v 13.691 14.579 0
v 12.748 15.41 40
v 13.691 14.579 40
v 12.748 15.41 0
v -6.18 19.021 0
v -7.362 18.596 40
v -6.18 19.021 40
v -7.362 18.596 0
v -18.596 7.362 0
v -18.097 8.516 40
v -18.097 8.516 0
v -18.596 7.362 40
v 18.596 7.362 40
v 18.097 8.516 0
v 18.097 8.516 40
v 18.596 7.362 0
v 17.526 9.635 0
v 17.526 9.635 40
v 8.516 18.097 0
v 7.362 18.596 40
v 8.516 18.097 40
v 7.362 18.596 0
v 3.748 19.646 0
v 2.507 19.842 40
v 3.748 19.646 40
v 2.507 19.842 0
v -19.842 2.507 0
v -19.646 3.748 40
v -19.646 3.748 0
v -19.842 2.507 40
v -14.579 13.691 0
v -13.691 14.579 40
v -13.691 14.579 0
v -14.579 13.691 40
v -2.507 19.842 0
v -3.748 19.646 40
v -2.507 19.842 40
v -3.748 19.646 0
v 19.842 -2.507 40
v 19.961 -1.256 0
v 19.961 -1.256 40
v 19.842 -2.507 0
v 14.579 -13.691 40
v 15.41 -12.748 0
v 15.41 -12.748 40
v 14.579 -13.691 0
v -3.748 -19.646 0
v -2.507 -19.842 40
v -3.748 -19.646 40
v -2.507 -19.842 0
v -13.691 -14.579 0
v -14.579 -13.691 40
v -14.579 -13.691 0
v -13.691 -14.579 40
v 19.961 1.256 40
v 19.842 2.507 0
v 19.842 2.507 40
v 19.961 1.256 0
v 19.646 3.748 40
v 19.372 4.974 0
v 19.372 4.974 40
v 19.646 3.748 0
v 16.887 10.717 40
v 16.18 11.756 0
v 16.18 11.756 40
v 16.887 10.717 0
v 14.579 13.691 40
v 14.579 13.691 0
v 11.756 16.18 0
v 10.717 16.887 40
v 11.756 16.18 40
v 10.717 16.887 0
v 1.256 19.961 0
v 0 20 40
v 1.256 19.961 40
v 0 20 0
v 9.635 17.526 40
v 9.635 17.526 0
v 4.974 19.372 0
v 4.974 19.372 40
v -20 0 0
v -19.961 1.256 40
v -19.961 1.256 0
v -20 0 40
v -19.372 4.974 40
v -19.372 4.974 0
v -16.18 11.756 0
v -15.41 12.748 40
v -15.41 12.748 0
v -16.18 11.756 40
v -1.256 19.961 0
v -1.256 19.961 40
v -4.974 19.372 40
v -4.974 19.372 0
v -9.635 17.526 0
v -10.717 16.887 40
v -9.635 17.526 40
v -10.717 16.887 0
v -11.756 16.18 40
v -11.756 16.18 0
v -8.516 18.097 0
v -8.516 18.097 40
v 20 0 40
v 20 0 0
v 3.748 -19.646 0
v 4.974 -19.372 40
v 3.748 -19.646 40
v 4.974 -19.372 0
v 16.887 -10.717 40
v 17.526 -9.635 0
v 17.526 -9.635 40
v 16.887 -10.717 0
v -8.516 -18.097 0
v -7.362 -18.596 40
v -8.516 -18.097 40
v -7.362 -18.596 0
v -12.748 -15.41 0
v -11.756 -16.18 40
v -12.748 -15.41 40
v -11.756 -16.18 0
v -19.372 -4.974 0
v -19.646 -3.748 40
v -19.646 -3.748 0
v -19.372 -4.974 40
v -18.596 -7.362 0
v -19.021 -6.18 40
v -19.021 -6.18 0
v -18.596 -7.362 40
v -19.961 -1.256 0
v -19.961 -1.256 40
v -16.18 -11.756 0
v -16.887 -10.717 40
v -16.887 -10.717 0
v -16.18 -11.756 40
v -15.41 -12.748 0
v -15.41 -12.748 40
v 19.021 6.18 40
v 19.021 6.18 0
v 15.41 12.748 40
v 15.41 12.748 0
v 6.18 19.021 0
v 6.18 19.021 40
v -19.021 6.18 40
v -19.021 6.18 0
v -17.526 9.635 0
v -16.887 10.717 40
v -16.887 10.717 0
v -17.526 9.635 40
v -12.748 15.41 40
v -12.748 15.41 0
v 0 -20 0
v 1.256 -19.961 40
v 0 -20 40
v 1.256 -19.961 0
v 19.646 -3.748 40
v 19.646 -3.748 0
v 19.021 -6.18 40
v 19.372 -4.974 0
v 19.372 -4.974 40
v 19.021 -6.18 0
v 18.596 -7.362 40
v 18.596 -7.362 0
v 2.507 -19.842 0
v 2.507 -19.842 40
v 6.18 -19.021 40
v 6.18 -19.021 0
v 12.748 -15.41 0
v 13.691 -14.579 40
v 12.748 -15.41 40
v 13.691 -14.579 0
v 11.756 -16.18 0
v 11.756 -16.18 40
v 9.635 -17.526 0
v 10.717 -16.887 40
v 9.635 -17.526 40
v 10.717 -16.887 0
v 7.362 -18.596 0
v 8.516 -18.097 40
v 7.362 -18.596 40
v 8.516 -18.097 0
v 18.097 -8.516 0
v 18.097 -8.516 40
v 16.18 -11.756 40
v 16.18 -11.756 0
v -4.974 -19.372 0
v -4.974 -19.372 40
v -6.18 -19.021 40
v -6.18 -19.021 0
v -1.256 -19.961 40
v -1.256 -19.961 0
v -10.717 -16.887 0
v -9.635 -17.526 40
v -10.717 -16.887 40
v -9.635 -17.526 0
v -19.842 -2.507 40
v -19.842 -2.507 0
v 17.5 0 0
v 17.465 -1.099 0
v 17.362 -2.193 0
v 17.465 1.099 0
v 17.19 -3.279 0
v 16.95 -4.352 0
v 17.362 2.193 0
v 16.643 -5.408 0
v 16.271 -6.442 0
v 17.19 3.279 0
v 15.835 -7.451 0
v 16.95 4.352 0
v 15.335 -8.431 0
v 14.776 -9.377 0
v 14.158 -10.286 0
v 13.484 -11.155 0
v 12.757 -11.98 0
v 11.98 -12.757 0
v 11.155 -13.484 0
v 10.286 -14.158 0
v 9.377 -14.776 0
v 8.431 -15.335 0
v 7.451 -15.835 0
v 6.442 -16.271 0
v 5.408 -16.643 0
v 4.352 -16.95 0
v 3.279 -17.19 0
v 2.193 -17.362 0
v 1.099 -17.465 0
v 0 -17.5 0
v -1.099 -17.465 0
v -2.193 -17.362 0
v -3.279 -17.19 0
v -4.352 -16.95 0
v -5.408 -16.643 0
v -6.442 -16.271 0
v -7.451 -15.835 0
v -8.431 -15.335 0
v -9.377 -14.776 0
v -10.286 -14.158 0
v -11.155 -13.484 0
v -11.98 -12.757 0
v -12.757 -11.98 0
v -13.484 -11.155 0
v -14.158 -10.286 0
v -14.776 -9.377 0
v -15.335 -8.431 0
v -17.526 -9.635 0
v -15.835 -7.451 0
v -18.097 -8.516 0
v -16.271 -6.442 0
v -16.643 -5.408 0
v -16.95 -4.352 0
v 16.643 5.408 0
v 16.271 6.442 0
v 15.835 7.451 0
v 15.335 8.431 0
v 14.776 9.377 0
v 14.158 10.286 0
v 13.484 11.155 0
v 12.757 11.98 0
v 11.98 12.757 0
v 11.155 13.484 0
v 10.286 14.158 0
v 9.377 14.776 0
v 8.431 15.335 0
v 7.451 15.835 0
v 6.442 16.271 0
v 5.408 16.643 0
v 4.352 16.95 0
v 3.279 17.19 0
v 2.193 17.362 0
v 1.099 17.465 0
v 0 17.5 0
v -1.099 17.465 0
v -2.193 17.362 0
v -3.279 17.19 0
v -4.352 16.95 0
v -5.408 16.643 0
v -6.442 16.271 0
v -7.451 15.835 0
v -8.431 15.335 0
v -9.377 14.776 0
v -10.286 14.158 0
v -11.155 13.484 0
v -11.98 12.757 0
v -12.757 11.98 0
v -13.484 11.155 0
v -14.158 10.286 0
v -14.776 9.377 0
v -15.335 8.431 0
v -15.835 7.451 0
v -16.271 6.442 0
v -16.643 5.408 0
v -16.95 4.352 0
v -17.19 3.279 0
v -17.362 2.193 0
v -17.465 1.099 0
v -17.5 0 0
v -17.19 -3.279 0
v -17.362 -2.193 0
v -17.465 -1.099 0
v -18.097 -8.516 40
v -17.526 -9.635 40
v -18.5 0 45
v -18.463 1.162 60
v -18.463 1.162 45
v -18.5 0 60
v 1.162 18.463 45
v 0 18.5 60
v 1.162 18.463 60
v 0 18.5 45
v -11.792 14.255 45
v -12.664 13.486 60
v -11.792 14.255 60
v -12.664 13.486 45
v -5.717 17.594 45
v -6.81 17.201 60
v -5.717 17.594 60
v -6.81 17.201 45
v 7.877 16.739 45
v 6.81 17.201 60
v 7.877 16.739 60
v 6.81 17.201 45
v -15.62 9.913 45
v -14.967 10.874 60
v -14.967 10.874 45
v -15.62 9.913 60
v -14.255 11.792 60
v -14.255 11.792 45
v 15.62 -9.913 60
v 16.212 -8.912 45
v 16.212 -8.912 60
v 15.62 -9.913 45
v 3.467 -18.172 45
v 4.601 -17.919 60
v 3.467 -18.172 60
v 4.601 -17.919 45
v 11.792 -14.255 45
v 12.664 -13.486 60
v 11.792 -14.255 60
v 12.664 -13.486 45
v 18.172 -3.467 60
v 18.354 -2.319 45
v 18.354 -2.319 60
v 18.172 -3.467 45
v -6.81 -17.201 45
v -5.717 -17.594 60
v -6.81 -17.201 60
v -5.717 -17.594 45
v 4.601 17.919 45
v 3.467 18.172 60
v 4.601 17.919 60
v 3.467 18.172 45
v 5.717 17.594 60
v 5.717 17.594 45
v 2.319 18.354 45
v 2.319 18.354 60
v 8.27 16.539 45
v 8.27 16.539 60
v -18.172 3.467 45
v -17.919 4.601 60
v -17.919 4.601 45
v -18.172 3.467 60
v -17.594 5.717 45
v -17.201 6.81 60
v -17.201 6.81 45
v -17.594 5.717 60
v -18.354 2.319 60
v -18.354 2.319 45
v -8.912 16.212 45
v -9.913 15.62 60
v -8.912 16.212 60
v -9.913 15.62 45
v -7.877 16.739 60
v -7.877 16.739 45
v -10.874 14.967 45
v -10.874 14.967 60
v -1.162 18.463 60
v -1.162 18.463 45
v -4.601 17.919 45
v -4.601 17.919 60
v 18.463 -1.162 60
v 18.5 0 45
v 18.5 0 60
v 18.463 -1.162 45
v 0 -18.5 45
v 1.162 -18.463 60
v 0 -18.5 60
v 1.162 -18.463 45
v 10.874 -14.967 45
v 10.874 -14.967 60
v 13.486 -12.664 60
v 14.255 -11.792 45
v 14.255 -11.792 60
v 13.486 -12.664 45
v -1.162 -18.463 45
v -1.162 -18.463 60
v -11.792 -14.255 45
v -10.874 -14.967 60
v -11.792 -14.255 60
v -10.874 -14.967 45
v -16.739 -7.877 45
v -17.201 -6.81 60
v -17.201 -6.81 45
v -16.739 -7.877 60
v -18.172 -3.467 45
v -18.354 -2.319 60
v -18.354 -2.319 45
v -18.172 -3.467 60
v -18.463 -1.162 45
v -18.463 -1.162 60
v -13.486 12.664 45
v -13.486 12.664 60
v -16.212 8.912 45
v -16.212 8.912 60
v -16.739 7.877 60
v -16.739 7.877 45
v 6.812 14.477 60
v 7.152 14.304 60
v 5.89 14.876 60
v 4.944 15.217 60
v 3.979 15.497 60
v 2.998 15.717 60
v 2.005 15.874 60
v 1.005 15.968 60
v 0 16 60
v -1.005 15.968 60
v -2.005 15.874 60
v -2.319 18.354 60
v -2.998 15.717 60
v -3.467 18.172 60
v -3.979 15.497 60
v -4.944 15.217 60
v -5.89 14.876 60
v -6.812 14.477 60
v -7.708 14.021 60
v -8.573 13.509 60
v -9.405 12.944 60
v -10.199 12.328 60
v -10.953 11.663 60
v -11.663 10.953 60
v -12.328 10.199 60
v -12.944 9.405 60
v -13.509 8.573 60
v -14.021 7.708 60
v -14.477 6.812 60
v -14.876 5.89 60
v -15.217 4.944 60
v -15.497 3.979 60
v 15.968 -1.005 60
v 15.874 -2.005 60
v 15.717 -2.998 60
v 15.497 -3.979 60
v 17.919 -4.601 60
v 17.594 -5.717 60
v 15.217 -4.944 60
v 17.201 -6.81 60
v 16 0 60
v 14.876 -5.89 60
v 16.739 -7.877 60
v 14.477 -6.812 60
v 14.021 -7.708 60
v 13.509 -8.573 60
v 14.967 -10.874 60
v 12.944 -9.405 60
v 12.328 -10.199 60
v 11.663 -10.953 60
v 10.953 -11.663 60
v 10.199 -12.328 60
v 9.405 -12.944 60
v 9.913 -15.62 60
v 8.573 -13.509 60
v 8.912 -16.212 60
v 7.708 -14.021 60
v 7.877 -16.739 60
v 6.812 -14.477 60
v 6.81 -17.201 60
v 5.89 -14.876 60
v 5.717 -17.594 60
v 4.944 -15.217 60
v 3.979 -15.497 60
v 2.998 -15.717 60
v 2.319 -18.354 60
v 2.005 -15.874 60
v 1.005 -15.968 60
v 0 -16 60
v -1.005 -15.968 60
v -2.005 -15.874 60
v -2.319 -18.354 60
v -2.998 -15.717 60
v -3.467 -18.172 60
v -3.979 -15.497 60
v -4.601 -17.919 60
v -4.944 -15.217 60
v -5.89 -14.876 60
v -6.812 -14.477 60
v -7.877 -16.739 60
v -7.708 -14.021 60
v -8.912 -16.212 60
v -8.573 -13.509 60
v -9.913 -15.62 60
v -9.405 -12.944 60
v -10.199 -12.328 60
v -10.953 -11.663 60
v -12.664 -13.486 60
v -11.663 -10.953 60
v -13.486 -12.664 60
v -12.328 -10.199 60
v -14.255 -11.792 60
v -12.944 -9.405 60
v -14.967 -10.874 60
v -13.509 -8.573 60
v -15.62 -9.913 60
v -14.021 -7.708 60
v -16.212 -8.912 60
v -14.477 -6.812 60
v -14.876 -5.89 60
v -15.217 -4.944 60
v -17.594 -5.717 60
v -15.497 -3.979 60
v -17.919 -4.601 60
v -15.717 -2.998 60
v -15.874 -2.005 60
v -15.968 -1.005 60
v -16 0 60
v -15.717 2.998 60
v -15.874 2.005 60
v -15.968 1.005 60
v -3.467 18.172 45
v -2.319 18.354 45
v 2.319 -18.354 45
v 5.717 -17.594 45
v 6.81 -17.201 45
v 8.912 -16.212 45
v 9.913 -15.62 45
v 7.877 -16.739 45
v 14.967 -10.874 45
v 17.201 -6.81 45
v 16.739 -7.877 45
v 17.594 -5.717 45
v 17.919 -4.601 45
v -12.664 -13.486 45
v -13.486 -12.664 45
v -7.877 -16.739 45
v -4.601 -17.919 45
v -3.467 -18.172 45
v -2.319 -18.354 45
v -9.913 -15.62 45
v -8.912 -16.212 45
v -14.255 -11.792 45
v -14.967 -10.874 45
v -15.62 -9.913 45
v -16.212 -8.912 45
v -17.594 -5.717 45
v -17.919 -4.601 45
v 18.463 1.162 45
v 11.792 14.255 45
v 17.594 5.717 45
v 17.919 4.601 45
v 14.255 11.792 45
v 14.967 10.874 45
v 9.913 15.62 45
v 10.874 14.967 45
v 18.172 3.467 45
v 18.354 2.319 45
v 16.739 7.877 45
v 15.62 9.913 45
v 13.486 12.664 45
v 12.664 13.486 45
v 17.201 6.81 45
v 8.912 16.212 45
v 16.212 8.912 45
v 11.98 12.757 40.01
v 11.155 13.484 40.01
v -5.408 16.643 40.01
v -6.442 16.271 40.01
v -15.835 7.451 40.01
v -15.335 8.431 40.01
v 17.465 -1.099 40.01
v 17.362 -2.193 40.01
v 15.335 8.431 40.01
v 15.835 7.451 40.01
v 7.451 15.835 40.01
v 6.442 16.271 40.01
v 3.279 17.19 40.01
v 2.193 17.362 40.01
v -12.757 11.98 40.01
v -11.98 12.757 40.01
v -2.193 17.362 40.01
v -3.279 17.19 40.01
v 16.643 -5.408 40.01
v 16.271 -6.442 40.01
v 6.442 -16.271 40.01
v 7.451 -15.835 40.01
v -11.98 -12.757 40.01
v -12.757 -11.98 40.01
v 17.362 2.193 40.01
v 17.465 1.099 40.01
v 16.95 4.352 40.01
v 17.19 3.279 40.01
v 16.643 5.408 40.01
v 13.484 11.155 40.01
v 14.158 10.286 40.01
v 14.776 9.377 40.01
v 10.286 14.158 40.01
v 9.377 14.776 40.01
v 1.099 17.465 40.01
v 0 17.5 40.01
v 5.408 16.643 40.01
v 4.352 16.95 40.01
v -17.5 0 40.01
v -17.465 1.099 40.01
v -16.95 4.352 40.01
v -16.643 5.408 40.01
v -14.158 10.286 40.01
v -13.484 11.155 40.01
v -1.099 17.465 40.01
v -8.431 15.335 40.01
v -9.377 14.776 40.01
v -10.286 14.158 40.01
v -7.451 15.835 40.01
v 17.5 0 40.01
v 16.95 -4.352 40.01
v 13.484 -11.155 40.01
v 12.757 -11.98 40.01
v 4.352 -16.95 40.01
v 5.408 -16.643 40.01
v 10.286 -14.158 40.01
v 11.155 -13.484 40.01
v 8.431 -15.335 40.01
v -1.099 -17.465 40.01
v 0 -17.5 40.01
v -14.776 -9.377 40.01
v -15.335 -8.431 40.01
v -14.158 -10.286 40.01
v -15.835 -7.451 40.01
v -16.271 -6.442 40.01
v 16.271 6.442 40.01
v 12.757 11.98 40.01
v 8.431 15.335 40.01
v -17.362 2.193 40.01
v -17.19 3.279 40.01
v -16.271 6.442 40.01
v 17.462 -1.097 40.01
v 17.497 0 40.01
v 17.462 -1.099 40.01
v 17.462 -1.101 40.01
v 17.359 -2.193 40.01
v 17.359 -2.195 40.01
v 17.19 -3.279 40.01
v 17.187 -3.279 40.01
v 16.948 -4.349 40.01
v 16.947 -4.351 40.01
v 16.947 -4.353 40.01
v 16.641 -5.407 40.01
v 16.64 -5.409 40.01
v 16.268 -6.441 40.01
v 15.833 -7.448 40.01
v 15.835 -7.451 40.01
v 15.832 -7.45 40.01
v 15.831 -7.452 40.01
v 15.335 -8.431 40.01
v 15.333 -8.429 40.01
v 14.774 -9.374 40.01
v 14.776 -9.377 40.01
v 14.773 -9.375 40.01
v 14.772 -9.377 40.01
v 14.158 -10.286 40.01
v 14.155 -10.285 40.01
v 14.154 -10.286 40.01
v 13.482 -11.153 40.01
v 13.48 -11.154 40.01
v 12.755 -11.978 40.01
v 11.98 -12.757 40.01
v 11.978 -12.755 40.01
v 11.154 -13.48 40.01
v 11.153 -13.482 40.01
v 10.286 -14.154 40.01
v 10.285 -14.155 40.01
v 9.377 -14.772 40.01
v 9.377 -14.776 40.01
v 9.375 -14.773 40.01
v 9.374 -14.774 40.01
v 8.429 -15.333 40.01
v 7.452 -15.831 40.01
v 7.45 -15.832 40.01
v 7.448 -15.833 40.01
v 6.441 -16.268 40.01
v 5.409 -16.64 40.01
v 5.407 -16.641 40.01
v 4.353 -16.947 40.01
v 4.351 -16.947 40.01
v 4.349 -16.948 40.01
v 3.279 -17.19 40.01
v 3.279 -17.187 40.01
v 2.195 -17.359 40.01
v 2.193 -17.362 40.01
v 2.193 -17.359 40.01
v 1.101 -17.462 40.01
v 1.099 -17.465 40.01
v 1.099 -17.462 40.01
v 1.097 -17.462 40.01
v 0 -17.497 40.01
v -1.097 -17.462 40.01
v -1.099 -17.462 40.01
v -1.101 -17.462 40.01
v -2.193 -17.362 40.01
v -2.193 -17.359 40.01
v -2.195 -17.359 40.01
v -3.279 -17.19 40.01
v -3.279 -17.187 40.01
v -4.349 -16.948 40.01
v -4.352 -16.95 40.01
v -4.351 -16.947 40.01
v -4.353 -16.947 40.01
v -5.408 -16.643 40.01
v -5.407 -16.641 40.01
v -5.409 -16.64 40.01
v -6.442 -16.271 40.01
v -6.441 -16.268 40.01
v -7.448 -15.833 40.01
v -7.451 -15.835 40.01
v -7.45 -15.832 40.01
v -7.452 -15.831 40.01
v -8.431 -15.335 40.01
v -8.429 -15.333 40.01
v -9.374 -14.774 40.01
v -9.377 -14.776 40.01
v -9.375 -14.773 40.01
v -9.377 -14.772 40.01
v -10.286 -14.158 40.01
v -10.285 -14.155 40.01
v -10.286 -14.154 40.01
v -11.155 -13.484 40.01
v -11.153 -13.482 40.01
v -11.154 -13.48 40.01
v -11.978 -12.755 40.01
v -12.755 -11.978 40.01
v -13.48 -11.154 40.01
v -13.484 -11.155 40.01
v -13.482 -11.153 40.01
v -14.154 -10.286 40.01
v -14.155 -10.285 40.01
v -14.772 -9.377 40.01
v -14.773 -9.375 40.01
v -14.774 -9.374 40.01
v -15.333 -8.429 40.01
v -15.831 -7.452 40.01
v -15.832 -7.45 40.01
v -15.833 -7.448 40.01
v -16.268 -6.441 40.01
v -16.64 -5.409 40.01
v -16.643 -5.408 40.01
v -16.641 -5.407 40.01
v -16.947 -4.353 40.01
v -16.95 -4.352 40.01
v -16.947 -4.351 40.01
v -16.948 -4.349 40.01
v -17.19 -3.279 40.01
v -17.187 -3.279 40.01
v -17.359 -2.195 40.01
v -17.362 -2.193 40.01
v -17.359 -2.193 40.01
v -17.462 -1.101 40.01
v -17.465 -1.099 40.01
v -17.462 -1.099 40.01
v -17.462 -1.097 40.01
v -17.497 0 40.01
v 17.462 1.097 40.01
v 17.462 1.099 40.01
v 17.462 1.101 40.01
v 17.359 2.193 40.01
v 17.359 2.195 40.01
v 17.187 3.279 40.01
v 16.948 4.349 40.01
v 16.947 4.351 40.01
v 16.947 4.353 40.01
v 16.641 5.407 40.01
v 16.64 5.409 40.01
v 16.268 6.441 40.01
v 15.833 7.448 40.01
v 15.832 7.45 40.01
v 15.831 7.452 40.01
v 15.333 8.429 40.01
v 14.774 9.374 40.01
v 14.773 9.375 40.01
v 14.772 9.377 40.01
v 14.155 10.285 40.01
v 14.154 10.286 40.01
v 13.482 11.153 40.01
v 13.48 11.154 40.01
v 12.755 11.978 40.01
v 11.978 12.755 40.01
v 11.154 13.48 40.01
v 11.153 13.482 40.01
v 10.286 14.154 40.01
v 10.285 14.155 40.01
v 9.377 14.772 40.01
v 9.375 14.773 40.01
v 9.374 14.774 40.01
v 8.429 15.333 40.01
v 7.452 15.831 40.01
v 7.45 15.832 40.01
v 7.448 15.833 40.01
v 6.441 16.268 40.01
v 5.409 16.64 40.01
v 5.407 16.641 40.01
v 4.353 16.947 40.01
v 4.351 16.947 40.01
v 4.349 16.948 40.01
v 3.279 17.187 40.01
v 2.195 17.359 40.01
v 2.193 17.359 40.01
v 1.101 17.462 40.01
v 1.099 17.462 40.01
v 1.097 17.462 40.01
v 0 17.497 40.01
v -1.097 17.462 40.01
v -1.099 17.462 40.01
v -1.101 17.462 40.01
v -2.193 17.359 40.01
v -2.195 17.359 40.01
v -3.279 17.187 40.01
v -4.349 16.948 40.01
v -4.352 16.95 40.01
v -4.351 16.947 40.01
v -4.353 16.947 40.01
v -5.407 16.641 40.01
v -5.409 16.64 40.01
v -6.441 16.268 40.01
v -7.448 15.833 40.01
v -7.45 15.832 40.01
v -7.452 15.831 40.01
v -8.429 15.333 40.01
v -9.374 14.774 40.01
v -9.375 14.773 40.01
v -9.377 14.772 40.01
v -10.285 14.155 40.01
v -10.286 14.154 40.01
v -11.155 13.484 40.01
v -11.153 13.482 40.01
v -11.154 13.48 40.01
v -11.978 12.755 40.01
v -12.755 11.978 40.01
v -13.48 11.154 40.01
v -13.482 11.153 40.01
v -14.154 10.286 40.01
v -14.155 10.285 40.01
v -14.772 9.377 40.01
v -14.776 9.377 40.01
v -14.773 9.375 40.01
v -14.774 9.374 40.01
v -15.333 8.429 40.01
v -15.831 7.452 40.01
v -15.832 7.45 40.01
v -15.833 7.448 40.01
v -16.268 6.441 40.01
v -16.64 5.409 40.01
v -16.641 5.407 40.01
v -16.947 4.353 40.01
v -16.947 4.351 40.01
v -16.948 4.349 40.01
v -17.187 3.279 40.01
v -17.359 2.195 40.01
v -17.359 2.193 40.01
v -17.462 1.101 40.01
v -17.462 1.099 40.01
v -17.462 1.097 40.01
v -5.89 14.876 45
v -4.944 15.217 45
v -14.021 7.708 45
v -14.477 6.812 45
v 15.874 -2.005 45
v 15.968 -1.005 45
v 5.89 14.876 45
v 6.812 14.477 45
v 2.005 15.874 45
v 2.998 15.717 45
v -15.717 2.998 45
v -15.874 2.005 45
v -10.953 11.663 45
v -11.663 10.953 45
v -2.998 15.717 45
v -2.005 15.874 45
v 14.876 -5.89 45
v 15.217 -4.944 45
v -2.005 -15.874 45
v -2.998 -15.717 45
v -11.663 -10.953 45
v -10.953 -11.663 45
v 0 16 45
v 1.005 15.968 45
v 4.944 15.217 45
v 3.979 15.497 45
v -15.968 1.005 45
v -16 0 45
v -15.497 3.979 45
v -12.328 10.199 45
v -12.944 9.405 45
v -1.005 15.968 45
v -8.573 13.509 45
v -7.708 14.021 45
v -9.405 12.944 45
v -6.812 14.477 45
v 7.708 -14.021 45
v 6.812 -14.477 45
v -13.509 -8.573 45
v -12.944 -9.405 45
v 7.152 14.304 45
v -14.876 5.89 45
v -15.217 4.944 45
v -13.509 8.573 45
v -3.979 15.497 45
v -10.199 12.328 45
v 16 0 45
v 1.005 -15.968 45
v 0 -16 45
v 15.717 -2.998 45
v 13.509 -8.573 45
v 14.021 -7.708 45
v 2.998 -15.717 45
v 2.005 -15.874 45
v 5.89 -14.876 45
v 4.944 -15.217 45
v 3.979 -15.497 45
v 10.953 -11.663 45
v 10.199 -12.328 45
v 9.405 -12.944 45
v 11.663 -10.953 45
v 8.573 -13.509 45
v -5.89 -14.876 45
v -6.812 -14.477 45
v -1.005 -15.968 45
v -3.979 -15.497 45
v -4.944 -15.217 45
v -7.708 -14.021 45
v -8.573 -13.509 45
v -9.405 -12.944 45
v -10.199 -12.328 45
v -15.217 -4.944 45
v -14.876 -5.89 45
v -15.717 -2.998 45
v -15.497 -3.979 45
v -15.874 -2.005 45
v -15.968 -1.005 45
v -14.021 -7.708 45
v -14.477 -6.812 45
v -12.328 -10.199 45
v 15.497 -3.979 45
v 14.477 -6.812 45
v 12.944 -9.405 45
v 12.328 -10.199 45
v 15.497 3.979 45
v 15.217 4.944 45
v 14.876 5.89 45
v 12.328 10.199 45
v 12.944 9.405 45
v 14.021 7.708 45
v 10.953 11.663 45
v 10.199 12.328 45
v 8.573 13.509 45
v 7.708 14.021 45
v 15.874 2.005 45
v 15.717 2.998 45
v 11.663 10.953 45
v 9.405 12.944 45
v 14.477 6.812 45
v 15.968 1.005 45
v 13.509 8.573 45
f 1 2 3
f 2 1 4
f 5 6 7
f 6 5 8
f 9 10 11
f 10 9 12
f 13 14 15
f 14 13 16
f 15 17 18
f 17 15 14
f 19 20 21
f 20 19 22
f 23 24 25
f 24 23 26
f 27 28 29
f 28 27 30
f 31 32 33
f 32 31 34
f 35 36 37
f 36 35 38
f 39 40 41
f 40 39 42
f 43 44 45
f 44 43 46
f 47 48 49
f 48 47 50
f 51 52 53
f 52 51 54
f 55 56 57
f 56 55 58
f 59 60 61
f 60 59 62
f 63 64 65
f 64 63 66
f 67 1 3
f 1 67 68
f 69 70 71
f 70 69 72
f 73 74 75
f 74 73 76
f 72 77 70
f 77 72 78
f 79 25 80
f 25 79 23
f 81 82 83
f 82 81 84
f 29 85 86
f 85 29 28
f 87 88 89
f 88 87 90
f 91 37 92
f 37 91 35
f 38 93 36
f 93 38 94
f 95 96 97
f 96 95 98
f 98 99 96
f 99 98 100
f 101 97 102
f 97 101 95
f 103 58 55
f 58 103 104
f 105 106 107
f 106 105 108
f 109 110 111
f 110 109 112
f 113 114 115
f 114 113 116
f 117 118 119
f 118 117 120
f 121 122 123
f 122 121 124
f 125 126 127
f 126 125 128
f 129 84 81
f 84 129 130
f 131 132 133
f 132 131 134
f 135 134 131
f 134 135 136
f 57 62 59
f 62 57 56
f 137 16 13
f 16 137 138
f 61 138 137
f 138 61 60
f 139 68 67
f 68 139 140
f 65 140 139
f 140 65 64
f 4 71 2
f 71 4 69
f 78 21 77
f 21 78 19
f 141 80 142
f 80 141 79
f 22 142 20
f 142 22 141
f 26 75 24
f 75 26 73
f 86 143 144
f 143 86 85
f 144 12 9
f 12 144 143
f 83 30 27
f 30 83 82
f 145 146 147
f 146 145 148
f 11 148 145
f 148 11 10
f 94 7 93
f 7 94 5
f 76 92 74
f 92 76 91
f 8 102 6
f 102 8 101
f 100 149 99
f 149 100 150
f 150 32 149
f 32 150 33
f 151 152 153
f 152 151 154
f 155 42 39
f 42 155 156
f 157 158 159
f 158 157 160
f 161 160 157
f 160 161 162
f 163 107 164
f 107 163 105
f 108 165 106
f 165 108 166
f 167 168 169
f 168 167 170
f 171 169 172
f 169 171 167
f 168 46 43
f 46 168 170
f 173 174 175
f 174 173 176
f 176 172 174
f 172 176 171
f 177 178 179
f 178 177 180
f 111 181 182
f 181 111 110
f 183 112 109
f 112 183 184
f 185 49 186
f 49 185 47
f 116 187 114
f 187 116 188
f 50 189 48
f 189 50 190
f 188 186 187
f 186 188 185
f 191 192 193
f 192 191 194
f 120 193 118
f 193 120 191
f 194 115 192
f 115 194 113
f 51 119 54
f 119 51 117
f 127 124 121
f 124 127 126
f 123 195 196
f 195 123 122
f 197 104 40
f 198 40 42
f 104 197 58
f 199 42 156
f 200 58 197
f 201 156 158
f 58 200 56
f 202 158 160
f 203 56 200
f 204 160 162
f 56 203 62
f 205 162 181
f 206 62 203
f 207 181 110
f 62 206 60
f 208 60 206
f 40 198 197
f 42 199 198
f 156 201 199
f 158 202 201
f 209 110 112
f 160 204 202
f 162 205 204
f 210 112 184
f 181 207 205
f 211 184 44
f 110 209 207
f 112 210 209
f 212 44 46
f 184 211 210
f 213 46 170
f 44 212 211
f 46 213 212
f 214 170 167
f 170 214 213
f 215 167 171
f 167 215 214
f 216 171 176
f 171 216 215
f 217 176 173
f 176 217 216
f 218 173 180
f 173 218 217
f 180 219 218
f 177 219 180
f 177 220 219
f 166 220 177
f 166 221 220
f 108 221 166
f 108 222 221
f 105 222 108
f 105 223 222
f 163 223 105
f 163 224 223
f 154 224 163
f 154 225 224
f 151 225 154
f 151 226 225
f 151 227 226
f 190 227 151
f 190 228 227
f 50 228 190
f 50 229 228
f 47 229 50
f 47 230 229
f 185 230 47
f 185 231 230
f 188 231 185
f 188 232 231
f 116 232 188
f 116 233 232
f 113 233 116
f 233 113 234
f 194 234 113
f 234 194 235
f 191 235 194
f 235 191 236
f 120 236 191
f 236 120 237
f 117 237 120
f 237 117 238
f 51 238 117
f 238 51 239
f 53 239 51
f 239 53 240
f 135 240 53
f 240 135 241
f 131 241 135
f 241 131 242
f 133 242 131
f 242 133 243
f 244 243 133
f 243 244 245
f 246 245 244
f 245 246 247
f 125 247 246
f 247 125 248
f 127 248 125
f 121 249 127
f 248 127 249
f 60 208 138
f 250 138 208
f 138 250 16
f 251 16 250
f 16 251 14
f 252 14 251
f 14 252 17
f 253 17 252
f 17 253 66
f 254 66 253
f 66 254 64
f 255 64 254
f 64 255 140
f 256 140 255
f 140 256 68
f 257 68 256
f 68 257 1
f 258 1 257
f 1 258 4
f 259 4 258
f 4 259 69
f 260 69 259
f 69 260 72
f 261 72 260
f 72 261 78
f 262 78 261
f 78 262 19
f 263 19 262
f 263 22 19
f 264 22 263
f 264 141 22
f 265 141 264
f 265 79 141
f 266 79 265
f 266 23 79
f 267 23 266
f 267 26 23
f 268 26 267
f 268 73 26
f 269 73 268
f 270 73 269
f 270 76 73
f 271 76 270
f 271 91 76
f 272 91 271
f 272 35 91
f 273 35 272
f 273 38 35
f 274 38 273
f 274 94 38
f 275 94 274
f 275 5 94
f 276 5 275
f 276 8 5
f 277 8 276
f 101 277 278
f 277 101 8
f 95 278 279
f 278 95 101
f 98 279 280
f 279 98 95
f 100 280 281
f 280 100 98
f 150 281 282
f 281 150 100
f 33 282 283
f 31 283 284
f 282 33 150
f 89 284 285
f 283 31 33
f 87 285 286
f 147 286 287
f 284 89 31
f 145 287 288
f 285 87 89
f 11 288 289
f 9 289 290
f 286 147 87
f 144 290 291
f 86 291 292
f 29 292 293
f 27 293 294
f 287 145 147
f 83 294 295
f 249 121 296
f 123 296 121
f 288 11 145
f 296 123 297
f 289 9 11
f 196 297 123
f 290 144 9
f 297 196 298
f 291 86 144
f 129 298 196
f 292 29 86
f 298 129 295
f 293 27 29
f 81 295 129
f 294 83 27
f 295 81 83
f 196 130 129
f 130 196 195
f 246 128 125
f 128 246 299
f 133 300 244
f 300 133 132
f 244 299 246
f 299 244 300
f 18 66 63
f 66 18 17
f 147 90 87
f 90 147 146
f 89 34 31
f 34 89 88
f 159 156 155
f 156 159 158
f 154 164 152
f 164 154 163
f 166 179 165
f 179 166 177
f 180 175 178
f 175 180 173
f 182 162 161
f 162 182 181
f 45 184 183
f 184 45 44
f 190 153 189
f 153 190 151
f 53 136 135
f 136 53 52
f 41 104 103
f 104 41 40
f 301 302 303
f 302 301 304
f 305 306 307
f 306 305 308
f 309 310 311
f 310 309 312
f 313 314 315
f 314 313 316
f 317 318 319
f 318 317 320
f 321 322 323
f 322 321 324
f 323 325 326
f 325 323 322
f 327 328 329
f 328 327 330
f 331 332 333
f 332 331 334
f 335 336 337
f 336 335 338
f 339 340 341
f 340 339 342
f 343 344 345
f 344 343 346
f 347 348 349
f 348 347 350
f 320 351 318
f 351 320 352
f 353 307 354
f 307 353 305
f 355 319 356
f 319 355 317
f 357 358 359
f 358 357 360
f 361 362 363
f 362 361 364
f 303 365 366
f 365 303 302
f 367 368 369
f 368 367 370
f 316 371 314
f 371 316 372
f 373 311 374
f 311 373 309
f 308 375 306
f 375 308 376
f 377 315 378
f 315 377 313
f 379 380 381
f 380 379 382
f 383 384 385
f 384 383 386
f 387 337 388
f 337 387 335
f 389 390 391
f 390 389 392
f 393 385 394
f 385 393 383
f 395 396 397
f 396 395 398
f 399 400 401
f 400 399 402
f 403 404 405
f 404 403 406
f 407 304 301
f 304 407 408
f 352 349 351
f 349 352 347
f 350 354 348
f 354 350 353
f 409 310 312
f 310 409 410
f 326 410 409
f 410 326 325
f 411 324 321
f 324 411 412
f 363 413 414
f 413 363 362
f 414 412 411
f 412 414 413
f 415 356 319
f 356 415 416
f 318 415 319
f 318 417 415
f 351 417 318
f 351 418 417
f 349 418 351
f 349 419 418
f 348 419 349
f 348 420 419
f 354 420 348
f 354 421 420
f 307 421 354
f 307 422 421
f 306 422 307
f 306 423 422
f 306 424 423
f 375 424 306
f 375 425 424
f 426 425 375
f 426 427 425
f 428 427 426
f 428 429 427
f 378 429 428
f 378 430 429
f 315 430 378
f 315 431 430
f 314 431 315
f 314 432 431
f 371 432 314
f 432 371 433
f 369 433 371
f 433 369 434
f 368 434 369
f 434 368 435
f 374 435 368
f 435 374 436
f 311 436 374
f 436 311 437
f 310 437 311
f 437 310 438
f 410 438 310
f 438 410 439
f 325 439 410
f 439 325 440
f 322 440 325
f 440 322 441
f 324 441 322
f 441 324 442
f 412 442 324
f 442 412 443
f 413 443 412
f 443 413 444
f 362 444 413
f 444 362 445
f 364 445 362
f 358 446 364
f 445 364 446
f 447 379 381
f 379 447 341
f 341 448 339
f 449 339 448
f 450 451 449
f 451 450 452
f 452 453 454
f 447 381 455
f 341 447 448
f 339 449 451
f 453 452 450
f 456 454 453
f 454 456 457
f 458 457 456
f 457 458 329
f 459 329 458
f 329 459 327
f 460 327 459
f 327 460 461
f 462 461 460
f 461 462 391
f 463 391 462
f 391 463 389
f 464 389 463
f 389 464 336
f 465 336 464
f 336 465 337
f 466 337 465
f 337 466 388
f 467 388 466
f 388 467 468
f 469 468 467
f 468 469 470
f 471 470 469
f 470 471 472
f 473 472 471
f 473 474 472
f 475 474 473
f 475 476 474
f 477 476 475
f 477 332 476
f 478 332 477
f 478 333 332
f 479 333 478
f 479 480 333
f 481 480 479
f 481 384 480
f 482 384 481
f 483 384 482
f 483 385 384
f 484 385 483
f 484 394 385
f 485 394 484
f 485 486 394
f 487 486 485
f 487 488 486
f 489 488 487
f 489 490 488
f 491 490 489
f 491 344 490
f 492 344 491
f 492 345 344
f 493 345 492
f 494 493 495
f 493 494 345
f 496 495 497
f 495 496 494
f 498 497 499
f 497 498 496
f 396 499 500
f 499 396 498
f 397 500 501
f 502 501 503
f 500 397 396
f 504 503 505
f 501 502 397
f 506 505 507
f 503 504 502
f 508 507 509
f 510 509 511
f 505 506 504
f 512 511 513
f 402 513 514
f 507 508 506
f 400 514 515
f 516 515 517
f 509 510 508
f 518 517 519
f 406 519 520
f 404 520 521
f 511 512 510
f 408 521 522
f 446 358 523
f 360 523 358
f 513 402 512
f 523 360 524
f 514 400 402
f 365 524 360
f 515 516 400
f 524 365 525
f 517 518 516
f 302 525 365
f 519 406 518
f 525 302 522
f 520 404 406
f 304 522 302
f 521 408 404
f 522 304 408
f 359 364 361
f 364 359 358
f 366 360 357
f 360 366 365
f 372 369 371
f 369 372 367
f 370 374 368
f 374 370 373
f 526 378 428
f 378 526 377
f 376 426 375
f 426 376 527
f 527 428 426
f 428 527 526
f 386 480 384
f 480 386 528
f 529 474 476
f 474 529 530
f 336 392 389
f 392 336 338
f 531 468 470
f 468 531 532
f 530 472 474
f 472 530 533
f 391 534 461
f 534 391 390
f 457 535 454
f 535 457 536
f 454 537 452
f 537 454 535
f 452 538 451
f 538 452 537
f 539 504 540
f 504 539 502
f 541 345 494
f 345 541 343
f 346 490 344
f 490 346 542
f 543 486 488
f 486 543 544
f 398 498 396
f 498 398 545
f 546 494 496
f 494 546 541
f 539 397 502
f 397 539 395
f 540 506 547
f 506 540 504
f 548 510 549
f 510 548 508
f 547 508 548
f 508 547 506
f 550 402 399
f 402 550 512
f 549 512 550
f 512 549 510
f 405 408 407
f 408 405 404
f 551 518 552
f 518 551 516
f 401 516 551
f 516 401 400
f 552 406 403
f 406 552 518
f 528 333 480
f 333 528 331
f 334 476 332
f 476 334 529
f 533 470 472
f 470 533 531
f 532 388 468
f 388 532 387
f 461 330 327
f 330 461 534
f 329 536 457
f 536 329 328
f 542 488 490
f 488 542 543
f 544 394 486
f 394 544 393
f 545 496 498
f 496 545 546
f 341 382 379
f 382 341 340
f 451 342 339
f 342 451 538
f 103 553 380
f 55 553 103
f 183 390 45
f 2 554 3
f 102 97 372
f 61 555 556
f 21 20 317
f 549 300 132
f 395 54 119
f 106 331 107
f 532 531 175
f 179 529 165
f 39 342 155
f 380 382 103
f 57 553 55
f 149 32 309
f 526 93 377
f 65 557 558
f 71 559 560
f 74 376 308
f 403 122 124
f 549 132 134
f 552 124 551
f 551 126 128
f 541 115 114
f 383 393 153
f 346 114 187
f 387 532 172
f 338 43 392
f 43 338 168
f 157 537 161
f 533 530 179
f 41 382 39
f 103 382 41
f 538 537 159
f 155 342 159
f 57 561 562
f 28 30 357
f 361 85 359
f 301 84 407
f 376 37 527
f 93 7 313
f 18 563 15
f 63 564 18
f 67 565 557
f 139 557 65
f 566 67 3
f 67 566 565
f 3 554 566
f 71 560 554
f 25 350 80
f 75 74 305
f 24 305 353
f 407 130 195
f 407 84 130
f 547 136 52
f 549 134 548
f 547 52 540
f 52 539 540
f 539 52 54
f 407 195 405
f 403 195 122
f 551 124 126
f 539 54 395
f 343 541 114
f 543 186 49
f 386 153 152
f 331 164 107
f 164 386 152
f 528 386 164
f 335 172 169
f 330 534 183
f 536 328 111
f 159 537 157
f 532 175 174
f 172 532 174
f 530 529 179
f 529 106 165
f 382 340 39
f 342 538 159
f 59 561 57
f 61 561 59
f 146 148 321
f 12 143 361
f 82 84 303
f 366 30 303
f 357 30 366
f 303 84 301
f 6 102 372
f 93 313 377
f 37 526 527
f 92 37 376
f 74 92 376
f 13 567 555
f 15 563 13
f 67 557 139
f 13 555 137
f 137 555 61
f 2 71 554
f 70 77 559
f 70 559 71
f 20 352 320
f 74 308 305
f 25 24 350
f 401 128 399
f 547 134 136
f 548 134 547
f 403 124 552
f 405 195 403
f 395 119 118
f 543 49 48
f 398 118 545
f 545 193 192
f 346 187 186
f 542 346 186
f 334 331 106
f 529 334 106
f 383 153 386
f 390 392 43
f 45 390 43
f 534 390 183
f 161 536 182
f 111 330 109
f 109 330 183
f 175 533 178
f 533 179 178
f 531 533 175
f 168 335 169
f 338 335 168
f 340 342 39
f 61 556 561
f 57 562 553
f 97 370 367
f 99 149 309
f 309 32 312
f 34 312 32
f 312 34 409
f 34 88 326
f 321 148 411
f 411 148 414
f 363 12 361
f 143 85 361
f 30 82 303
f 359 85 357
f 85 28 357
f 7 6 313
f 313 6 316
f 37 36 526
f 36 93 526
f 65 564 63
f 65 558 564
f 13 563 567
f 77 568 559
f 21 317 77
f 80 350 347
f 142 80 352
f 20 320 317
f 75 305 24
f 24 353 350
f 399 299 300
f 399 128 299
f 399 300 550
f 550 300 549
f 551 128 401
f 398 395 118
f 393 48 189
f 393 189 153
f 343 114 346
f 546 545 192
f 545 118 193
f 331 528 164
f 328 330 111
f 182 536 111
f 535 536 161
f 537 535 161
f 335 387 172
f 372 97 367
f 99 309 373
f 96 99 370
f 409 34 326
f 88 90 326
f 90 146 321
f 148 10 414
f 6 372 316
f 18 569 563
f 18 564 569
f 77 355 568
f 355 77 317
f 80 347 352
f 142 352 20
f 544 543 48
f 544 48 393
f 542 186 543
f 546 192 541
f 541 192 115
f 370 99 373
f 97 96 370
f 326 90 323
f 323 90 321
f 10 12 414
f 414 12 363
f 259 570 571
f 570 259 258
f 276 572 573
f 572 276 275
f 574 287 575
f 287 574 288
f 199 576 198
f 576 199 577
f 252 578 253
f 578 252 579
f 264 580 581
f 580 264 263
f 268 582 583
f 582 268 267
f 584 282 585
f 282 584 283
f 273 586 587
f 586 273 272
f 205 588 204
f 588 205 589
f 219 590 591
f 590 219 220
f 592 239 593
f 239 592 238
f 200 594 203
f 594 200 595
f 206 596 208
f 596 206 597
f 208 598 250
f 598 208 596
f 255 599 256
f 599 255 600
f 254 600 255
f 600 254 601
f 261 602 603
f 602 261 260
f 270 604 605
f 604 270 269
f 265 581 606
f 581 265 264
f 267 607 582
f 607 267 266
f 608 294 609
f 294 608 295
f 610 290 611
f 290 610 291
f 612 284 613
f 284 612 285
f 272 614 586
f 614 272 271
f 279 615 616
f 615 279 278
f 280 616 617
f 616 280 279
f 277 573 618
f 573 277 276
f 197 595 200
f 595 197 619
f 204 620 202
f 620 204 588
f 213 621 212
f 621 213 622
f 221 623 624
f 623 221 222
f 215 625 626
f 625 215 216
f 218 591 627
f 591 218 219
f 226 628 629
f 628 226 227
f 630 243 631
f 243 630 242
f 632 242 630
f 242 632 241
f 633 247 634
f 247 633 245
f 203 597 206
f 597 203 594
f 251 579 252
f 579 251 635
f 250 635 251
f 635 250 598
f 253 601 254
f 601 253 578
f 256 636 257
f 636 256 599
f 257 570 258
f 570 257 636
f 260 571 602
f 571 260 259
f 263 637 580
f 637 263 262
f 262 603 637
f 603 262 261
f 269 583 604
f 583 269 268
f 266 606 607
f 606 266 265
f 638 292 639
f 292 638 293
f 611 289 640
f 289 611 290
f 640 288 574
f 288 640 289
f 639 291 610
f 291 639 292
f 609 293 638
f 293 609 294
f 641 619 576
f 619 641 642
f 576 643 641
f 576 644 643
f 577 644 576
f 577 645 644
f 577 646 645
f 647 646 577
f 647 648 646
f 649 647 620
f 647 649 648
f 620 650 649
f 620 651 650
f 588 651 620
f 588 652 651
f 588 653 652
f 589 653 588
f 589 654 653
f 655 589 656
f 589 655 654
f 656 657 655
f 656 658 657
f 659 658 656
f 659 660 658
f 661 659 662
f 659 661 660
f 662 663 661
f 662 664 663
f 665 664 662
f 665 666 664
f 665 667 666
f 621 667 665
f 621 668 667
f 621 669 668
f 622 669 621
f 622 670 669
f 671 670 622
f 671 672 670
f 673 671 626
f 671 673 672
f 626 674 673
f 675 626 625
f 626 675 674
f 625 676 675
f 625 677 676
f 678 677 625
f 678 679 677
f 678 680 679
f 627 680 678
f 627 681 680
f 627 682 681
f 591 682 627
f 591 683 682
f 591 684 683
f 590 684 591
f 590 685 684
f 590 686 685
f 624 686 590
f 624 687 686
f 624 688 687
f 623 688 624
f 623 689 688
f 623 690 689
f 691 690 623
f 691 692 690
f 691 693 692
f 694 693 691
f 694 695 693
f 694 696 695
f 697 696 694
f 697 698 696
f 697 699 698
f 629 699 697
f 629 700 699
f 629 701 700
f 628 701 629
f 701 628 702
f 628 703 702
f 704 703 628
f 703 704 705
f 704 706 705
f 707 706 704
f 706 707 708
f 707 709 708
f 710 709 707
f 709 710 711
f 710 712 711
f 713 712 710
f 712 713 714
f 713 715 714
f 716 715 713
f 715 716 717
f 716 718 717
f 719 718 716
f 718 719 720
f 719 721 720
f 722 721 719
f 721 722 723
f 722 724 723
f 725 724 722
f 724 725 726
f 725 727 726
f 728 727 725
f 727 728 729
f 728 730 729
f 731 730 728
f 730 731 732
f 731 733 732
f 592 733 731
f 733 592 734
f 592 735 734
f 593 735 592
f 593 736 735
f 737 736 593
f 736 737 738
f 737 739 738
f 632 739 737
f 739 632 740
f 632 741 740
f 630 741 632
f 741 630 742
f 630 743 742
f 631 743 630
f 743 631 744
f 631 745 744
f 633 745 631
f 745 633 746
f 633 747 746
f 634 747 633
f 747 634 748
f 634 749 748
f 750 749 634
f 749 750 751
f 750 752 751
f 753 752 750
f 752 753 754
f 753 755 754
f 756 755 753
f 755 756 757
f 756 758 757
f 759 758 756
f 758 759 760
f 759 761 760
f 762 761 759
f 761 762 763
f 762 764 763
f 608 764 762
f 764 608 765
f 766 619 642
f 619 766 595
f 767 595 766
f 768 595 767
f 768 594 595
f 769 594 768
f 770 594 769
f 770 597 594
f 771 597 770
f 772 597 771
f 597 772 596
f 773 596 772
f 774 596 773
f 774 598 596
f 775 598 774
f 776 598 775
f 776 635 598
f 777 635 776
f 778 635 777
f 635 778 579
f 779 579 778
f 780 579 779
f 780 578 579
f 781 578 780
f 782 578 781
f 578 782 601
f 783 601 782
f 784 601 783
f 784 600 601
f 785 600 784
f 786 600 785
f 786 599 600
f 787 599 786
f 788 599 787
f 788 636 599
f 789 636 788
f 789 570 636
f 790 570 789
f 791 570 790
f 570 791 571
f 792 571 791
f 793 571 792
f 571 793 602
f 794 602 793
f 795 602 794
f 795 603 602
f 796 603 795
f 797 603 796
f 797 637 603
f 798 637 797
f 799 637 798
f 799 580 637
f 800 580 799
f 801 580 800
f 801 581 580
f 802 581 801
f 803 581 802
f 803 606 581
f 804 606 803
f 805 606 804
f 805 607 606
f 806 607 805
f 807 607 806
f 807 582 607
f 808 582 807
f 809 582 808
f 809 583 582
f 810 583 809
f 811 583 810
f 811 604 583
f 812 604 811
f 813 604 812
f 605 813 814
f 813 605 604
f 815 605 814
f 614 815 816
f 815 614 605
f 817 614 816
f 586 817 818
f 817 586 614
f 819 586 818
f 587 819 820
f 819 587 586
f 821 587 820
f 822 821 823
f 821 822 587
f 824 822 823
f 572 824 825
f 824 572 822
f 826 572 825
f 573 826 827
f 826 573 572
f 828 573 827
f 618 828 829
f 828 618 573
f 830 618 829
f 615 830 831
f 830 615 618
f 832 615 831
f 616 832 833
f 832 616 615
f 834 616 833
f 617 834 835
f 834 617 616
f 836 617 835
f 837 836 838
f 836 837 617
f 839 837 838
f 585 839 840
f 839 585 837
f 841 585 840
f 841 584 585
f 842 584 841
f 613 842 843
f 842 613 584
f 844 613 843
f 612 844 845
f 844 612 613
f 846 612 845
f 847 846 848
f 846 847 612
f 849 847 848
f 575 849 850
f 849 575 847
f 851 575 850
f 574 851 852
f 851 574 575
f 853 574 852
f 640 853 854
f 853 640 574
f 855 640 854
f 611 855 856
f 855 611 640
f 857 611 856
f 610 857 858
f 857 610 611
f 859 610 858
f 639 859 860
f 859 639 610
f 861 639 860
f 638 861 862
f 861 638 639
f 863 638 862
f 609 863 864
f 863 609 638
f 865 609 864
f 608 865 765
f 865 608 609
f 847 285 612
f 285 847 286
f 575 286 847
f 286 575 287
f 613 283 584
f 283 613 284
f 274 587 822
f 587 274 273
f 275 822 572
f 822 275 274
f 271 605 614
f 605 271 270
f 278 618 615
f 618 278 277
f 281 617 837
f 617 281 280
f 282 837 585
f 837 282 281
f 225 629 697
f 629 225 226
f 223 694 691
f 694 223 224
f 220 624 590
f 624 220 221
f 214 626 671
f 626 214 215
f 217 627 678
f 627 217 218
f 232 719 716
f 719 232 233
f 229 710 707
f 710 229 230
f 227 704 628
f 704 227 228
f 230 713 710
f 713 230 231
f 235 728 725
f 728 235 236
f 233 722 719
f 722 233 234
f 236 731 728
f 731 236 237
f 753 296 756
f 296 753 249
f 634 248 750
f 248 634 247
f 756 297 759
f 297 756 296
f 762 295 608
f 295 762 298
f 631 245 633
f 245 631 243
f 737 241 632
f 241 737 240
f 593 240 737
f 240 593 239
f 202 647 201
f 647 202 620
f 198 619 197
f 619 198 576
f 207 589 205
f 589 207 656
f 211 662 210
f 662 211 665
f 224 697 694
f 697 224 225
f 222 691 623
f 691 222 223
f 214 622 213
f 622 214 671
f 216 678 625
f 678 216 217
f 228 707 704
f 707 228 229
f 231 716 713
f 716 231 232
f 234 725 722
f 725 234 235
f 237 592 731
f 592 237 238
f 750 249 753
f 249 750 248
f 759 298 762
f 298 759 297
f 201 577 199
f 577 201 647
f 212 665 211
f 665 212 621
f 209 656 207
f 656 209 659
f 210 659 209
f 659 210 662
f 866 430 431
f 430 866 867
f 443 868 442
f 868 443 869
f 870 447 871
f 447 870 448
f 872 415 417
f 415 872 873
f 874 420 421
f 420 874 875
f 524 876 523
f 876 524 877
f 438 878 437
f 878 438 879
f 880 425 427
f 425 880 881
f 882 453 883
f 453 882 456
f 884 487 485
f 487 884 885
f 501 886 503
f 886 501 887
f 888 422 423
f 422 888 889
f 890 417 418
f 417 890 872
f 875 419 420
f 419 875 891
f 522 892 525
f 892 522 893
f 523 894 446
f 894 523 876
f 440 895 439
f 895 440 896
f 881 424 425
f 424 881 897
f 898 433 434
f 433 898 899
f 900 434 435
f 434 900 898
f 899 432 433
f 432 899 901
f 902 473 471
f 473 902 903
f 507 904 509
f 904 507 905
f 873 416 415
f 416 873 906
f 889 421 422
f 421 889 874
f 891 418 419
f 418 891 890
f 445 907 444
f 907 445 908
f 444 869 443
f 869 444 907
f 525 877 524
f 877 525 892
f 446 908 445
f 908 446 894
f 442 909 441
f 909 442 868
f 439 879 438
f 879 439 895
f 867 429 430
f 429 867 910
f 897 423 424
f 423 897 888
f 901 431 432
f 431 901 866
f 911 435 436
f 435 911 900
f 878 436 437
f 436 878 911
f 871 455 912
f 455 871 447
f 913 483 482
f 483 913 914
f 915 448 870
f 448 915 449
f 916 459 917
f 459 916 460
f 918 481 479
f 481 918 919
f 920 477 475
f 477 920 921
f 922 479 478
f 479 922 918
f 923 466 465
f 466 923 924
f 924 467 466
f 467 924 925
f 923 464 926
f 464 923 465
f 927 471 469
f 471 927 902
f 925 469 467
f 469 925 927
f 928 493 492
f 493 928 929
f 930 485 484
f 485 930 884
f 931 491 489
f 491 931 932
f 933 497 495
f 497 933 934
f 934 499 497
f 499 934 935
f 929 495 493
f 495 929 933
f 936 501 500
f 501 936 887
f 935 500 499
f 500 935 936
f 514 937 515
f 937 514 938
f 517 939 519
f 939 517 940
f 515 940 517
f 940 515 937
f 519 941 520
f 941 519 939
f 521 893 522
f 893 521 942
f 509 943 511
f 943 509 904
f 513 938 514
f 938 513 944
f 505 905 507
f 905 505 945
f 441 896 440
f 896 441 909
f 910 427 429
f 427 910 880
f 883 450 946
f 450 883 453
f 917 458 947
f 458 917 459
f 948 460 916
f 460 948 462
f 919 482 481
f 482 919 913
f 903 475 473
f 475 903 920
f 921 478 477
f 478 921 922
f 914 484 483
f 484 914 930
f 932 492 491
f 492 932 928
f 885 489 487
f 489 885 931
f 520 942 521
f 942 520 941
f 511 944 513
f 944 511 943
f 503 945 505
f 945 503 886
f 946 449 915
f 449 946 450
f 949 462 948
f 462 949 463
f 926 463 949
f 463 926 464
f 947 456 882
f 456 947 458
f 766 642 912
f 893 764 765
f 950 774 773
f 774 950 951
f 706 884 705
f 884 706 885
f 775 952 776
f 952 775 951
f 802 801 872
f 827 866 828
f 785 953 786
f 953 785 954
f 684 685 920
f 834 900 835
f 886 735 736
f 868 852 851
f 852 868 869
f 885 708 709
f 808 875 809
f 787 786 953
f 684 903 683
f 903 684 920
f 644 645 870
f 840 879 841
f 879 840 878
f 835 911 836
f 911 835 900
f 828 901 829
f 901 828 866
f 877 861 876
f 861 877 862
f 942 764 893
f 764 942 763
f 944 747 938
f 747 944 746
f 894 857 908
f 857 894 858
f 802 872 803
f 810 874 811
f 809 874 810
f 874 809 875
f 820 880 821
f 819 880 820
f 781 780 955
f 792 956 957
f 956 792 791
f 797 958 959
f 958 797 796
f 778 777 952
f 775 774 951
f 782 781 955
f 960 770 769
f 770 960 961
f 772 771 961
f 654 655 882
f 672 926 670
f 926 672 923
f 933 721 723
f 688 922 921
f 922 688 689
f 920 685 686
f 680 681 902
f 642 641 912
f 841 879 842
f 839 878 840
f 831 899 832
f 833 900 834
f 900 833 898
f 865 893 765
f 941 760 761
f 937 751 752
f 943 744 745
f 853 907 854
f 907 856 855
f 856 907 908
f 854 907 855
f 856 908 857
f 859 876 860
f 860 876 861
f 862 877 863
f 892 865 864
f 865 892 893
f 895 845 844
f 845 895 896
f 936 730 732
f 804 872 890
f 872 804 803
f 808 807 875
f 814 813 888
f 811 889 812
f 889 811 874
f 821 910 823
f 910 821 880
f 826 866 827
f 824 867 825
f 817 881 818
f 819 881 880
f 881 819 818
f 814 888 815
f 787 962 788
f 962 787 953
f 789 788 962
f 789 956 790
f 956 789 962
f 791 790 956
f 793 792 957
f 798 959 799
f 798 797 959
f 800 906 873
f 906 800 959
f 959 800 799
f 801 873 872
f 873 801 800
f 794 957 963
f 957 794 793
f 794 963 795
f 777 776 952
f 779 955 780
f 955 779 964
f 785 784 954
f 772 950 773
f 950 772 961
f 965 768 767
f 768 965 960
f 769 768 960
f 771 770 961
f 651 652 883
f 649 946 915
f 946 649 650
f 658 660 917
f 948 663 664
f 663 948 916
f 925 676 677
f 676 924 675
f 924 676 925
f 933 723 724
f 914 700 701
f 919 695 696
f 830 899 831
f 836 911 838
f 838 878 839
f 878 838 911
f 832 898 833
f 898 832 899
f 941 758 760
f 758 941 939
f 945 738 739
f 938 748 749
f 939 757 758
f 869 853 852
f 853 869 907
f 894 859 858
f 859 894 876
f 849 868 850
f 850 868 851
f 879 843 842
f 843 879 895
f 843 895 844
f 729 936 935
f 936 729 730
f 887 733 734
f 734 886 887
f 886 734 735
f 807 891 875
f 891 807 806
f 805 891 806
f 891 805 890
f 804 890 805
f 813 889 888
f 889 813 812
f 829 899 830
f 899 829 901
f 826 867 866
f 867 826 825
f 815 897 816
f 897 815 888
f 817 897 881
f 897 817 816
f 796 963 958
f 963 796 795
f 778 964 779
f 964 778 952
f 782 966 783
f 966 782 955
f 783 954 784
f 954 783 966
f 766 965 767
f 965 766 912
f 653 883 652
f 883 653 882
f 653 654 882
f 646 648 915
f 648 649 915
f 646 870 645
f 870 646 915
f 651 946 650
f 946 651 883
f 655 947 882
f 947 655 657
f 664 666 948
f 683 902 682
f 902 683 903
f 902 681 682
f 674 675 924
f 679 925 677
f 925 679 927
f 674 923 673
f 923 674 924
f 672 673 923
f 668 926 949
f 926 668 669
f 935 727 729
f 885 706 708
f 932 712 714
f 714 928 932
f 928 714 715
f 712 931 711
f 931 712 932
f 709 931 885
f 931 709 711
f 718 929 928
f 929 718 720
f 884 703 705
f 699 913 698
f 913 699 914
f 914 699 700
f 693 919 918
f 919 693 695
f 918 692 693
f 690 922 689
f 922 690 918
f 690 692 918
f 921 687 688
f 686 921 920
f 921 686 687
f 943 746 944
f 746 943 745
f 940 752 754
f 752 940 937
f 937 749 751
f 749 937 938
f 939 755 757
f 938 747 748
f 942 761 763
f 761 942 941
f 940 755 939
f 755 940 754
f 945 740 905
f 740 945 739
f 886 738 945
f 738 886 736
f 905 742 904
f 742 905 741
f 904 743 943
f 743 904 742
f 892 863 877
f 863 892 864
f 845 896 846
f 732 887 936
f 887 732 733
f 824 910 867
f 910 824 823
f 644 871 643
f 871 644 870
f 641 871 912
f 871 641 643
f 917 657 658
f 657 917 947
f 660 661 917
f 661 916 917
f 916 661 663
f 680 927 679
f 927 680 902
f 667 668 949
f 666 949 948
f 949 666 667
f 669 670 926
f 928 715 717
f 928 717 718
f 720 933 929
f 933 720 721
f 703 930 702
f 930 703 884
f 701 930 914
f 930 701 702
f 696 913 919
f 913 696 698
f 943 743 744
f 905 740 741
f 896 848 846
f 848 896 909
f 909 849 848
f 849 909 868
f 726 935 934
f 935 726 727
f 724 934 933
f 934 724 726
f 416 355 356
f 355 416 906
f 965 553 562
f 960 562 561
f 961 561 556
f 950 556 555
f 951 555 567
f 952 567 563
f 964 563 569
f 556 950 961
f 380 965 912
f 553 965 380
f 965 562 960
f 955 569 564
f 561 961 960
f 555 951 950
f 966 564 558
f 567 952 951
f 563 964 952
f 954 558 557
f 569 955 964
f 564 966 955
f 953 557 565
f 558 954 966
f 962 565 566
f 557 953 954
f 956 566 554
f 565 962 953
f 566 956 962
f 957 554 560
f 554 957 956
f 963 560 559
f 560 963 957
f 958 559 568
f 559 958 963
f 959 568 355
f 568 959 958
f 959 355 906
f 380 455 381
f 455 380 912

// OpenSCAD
// file: matrix/_impl/_m_shearing_impl.scad
FINAL_ROW = [0, 0, 0, 1];
function _m_shearing_impl(sx, sy, sz) = 
    let(
        sx_along_y = sx[0],
        sx_along_z = sx[1],
        sy_along_x = sy[0],
        sy_along_z = sy[1],
        sz_along_x = sz[0],
        sz_along_y = sz[1]   
    ) 
    [
        [1, sx_along_y, sx_along_z, 0],
        [sy_along_x, 1, sy_along_z, 0],
        [sz_along_x, sz_along_y, 1, 0],
        FINAL_ROW
    ];
// file: matrix/m_shearing.scad
/**
* m_shearing.scad
*
* @copyright Justin Lin, 2019
* @license https://opensource.org/licenses/lgpl-3.0.html
*
* @see https://openhome.cc/eGossip/OpenSCAD/lib3x-m_shearing.html
*
**/

use <_impl/_m_shearing_impl.scad>

function m_shearing(sx = [0, 0], sy = [0, 0], sz = [0, 0]) = _m_shearing_impl(sx, sy, sz);
// file: shear.scad
/**
* shear.scad
*
* @copyright Justin Lin, 2019
* @license https://opensource.org/licenses/lgpl-3.0.html
*
* @see https://openhome.cc/eGossip/OpenSCAD/lib3x-shear.html
*
**/

use <matrix/m_shearing.scad>

module shear(sx = [0, 0], sy = [0, 0], sz = [0, 0]) {
    multmatrix(m_shearing(sx, sy, sz)) children();
}
// main file
use <shear.scad>

//d 35 x 40
//d 32 x 20 - 60 st.C

d1 = 35; h1 = 40;
d2 = 32; h2 = 20;
a2 = 60;
wall = 5;

$fn = $preview ? 50 : 100;

difference () {
  union () {
    cylinder(d = d1 + wall, h = h1);
   
    translate([0, 0, h1])
    cylinder(d = d2 + wall, h = h2);
    
    translate([0, 0, h1])
    cylinder(d1 = d1 + wall, d2 = d2 + wall, h = h2/4);    
  }
  
  union () {
    translate([0, 0, -0.01])
    cylinder(d = d1, h = h1 + 0.02);
   
    translate([0, 0, h1 - 0.01])
    cylinder(d = d2, h = h2 + 0.02);

    translate([0, 0, h1])
    cylinder(d1 = d1, d2 = d2, h = h2/4);
  }

  translate([0, 0, h1 + h2/4])
  shear(sx = [cos(a2),0])  
  cube(h2); 
}
